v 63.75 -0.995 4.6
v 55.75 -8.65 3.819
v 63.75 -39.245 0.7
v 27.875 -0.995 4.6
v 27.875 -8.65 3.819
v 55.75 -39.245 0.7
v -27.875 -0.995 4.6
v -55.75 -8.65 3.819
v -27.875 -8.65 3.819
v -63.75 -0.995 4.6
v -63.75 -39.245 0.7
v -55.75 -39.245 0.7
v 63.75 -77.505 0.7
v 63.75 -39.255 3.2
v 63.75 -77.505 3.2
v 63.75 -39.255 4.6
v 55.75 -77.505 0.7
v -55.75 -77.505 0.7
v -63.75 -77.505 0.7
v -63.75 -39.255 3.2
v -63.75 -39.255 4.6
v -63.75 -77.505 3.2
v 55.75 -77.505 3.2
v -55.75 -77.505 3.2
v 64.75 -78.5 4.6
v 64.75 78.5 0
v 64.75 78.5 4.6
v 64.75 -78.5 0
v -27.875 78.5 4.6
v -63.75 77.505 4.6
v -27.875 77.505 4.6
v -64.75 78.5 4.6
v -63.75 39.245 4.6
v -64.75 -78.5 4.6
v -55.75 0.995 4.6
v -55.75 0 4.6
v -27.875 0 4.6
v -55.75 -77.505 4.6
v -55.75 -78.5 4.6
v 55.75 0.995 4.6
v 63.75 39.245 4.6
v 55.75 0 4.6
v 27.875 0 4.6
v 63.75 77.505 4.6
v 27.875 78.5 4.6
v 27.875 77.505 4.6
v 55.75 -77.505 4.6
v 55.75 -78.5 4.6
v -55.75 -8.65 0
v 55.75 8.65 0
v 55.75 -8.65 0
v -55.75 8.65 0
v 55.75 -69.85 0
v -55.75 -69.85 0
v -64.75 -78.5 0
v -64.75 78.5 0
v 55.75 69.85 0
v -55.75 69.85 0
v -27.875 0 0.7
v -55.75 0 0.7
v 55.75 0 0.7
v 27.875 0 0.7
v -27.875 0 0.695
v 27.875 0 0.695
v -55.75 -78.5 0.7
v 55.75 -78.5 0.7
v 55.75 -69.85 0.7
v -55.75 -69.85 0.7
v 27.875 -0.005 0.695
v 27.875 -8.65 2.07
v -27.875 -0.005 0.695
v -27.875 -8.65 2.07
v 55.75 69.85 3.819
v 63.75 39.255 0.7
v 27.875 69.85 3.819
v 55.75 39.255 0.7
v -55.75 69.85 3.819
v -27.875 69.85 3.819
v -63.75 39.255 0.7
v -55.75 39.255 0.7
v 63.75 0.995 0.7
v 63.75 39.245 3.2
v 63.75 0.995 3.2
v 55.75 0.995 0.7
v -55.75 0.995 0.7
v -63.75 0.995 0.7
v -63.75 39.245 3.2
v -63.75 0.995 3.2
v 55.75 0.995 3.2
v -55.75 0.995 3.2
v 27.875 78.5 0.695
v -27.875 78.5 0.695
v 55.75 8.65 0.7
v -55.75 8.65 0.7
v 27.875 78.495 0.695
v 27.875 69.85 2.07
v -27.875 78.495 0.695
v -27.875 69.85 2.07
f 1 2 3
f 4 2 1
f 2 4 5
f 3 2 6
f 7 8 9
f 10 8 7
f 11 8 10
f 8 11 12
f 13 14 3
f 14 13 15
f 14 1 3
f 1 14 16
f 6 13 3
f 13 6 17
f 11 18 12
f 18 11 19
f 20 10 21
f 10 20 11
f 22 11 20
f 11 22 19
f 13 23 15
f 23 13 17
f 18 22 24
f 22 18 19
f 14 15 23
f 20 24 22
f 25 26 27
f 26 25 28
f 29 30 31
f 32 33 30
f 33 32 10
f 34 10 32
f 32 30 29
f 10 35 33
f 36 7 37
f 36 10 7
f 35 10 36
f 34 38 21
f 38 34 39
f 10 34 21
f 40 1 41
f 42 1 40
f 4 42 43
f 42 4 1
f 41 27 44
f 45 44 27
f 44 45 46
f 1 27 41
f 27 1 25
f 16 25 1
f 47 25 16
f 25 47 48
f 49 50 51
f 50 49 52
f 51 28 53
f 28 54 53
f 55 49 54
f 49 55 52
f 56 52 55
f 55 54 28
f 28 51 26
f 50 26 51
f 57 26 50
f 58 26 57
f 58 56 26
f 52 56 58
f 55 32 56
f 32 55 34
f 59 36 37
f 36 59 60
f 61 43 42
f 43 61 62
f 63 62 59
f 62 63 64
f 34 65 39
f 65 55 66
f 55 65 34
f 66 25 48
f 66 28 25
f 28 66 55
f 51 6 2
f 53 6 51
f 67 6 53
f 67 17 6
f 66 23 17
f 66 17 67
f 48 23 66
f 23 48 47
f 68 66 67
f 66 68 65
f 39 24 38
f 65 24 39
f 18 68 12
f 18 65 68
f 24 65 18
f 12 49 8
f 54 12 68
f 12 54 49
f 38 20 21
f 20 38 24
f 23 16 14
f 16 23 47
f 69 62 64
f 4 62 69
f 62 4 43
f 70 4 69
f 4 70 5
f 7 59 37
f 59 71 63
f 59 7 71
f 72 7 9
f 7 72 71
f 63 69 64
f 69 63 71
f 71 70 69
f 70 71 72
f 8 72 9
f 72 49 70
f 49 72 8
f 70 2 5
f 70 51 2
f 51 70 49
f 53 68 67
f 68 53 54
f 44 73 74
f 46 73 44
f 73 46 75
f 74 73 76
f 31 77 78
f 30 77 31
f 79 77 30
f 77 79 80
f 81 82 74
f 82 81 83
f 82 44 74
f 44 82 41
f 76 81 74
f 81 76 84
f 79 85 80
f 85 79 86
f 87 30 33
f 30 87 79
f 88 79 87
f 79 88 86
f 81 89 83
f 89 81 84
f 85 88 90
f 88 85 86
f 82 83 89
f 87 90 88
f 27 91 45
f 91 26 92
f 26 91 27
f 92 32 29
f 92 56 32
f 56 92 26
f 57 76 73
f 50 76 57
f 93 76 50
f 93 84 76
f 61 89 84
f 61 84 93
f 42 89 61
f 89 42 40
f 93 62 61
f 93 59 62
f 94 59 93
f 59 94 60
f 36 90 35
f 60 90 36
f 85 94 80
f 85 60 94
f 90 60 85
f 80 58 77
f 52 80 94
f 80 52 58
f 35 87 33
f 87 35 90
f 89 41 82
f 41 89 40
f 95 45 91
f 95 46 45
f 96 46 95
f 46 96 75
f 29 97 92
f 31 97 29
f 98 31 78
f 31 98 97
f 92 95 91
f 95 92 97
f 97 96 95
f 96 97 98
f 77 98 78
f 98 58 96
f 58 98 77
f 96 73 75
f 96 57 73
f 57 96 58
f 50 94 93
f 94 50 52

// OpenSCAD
// Wall Mounted Single Card Holder
// By Brian Khuu 2022-04-22
// RevC : This revision is an optimiation for ease of pickup as well as being able to view cards behind a glass

print_layer_height = 0.2;

// Index Card
// 76 x 127mm (More like 126mm width when measured)
businesscard_width = 127.5; // 90mm but some in real life are more like 91mm (Plus 0.5 tol )
businesscard_height = 76.5; // 55mm (add 0.5mm tol)
businesscard_thickness = 2.5; // 0.25mm for thin paper cards. 0.8mm for thick plastic cards. We need to add extra thickness to account for layer droop

// Holder
wall_spacing = 2;
wall_card_grip = 16;
wall_x_count = 1; //2
wall_y_count = 2; //3

// Calc
wall_base = print_layer_height*3+0.1;
wall_top = print_layer_height*3+0.1;
wall_height = wall_base + businesscard_thickness + wall_top*2;

module cardSlopeOutline()
{
    hull()
    {
        slope_width = (businesscard_width-wall_card_grip)/2;
        translate([0,businesscard_height/2+1, wall_base])
        cube([slope_width, 0.01, 0.01], center = true);
        translate([0,businesscard_height/4,businesscard_thickness + wall_top*2])
        cube([slope_width, 0.01, 0.01], center = true);
    }
}

module cardWindowOutline()
{
    hull()
    {
        translate([0,businesscard_height/2,businesscard_thickness + wall_top*2])
        cube([businesscard_width, 0.01, 0.01], center = true);
        translate([0,0,0])
        cube([businesscard_width, 0.01, 0.01], center = true);
    }
    hull()
    {
        translate([0,0,businesscard_thickness + wall_top*2])
        cube([businesscard_width, 0.01, 0.01], center = true);
        translate([0,-businesscard_height/2,0])
        cube([businesscard_width-wall_card_grip, 0.01, 0.01], center = true);
    }
}

module cardholder(reducePlastic=false)
{
    if (0)
    translate([0,0,wall_base+businesscard_thickness])
        rotate([2,0,0])
        %cube([85, 54, 0.1], center = true);

    difference()
    {
        translate([0,0,wall_height/2])
            cube([businesscard_width+wall_spacing, businesscard_height+wall_spacing, wall_height], center = true);

        // Card Slide
        translate([0,0,wall_base])
        translate([0,0,businesscard_thickness/2])
        {
            // Upper
            hull()
            {
                translate([0,businesscard_height/2,businesscard_thickness + wall_top*2])
                cube([businesscard_width, 0.01, businesscard_thickness], center = true);

                translate([0,0,0])
                cube([businesscard_width, 0.01, businesscard_thickness], center = true);
            }
            // Lower
            hull()
            {
                translate([0,-businesscard_height/2,0])
                cube([businesscard_width, 0.01, businesscard_thickness], center = true);
                cube([businesscard_width, 0.01, businesscard_thickness], center = true);
            }
        }

        // Grip
        translate([0,0,wall_height/2+wall_base])
            hull()
            {
                translate([0,0,0])
                cube([businesscard_width-wall_card_grip, 0.01, wall_height], center = true);

                translate([0,-businesscard_height,0])
                cube([businesscard_width-wall_card_grip, 0.01, wall_height], center = true);
            }


        // Card Window
        translate([0,0,wall_base+businesscard_thickness/2])
        {
            hull()
            {
                // Card Window Base
                cardWindowOutline();
                // Card Window Top
                translate([0,0,businesscard_thickness + wall_top * 2])
                    cardWindowOutline();
            }
        }

        // Card Slope
        translate([0,0,0])
        {
            hull()
            {
                // Card Window Base
                cardSlopeOutline();
                // Card Window Top
                translate([0,0,businesscard_thickness + wall_top * 2])
                    cardSlopeOutline();
            }
        }

        // Reduce Plastic
        if (reducePlastic)
        translate([0,0,wall_base+businesscard_thickness/2+0.5])
        {
            cube([businesscard_width-wall_card_grip,businesscard_height*0.8, wall_height+1], center=true);
        }
    }
}

if (wall_x_count == 1 && wall_y_count == 1)
{
    cardholder(true);
}
else
{
    translate([-((businesscard_width+wall_spacing)*wall_x_count)/2,-((businesscard_height+wall_spacing)*wall_y_count)/2,0])
    {
        for (x = [0: 1 : wall_x_count-1])
            for (y = [0 : 1 : wall_y_count-1])
                translate([x*(businesscard_width+wall_spacing) + (businesscard_width+wall_spacing)/2, y*(businesscard_height+wall_spacing)+(businesscard_height+wall_spacing)/2, 0])
                        cardholder(true);
    }
}
